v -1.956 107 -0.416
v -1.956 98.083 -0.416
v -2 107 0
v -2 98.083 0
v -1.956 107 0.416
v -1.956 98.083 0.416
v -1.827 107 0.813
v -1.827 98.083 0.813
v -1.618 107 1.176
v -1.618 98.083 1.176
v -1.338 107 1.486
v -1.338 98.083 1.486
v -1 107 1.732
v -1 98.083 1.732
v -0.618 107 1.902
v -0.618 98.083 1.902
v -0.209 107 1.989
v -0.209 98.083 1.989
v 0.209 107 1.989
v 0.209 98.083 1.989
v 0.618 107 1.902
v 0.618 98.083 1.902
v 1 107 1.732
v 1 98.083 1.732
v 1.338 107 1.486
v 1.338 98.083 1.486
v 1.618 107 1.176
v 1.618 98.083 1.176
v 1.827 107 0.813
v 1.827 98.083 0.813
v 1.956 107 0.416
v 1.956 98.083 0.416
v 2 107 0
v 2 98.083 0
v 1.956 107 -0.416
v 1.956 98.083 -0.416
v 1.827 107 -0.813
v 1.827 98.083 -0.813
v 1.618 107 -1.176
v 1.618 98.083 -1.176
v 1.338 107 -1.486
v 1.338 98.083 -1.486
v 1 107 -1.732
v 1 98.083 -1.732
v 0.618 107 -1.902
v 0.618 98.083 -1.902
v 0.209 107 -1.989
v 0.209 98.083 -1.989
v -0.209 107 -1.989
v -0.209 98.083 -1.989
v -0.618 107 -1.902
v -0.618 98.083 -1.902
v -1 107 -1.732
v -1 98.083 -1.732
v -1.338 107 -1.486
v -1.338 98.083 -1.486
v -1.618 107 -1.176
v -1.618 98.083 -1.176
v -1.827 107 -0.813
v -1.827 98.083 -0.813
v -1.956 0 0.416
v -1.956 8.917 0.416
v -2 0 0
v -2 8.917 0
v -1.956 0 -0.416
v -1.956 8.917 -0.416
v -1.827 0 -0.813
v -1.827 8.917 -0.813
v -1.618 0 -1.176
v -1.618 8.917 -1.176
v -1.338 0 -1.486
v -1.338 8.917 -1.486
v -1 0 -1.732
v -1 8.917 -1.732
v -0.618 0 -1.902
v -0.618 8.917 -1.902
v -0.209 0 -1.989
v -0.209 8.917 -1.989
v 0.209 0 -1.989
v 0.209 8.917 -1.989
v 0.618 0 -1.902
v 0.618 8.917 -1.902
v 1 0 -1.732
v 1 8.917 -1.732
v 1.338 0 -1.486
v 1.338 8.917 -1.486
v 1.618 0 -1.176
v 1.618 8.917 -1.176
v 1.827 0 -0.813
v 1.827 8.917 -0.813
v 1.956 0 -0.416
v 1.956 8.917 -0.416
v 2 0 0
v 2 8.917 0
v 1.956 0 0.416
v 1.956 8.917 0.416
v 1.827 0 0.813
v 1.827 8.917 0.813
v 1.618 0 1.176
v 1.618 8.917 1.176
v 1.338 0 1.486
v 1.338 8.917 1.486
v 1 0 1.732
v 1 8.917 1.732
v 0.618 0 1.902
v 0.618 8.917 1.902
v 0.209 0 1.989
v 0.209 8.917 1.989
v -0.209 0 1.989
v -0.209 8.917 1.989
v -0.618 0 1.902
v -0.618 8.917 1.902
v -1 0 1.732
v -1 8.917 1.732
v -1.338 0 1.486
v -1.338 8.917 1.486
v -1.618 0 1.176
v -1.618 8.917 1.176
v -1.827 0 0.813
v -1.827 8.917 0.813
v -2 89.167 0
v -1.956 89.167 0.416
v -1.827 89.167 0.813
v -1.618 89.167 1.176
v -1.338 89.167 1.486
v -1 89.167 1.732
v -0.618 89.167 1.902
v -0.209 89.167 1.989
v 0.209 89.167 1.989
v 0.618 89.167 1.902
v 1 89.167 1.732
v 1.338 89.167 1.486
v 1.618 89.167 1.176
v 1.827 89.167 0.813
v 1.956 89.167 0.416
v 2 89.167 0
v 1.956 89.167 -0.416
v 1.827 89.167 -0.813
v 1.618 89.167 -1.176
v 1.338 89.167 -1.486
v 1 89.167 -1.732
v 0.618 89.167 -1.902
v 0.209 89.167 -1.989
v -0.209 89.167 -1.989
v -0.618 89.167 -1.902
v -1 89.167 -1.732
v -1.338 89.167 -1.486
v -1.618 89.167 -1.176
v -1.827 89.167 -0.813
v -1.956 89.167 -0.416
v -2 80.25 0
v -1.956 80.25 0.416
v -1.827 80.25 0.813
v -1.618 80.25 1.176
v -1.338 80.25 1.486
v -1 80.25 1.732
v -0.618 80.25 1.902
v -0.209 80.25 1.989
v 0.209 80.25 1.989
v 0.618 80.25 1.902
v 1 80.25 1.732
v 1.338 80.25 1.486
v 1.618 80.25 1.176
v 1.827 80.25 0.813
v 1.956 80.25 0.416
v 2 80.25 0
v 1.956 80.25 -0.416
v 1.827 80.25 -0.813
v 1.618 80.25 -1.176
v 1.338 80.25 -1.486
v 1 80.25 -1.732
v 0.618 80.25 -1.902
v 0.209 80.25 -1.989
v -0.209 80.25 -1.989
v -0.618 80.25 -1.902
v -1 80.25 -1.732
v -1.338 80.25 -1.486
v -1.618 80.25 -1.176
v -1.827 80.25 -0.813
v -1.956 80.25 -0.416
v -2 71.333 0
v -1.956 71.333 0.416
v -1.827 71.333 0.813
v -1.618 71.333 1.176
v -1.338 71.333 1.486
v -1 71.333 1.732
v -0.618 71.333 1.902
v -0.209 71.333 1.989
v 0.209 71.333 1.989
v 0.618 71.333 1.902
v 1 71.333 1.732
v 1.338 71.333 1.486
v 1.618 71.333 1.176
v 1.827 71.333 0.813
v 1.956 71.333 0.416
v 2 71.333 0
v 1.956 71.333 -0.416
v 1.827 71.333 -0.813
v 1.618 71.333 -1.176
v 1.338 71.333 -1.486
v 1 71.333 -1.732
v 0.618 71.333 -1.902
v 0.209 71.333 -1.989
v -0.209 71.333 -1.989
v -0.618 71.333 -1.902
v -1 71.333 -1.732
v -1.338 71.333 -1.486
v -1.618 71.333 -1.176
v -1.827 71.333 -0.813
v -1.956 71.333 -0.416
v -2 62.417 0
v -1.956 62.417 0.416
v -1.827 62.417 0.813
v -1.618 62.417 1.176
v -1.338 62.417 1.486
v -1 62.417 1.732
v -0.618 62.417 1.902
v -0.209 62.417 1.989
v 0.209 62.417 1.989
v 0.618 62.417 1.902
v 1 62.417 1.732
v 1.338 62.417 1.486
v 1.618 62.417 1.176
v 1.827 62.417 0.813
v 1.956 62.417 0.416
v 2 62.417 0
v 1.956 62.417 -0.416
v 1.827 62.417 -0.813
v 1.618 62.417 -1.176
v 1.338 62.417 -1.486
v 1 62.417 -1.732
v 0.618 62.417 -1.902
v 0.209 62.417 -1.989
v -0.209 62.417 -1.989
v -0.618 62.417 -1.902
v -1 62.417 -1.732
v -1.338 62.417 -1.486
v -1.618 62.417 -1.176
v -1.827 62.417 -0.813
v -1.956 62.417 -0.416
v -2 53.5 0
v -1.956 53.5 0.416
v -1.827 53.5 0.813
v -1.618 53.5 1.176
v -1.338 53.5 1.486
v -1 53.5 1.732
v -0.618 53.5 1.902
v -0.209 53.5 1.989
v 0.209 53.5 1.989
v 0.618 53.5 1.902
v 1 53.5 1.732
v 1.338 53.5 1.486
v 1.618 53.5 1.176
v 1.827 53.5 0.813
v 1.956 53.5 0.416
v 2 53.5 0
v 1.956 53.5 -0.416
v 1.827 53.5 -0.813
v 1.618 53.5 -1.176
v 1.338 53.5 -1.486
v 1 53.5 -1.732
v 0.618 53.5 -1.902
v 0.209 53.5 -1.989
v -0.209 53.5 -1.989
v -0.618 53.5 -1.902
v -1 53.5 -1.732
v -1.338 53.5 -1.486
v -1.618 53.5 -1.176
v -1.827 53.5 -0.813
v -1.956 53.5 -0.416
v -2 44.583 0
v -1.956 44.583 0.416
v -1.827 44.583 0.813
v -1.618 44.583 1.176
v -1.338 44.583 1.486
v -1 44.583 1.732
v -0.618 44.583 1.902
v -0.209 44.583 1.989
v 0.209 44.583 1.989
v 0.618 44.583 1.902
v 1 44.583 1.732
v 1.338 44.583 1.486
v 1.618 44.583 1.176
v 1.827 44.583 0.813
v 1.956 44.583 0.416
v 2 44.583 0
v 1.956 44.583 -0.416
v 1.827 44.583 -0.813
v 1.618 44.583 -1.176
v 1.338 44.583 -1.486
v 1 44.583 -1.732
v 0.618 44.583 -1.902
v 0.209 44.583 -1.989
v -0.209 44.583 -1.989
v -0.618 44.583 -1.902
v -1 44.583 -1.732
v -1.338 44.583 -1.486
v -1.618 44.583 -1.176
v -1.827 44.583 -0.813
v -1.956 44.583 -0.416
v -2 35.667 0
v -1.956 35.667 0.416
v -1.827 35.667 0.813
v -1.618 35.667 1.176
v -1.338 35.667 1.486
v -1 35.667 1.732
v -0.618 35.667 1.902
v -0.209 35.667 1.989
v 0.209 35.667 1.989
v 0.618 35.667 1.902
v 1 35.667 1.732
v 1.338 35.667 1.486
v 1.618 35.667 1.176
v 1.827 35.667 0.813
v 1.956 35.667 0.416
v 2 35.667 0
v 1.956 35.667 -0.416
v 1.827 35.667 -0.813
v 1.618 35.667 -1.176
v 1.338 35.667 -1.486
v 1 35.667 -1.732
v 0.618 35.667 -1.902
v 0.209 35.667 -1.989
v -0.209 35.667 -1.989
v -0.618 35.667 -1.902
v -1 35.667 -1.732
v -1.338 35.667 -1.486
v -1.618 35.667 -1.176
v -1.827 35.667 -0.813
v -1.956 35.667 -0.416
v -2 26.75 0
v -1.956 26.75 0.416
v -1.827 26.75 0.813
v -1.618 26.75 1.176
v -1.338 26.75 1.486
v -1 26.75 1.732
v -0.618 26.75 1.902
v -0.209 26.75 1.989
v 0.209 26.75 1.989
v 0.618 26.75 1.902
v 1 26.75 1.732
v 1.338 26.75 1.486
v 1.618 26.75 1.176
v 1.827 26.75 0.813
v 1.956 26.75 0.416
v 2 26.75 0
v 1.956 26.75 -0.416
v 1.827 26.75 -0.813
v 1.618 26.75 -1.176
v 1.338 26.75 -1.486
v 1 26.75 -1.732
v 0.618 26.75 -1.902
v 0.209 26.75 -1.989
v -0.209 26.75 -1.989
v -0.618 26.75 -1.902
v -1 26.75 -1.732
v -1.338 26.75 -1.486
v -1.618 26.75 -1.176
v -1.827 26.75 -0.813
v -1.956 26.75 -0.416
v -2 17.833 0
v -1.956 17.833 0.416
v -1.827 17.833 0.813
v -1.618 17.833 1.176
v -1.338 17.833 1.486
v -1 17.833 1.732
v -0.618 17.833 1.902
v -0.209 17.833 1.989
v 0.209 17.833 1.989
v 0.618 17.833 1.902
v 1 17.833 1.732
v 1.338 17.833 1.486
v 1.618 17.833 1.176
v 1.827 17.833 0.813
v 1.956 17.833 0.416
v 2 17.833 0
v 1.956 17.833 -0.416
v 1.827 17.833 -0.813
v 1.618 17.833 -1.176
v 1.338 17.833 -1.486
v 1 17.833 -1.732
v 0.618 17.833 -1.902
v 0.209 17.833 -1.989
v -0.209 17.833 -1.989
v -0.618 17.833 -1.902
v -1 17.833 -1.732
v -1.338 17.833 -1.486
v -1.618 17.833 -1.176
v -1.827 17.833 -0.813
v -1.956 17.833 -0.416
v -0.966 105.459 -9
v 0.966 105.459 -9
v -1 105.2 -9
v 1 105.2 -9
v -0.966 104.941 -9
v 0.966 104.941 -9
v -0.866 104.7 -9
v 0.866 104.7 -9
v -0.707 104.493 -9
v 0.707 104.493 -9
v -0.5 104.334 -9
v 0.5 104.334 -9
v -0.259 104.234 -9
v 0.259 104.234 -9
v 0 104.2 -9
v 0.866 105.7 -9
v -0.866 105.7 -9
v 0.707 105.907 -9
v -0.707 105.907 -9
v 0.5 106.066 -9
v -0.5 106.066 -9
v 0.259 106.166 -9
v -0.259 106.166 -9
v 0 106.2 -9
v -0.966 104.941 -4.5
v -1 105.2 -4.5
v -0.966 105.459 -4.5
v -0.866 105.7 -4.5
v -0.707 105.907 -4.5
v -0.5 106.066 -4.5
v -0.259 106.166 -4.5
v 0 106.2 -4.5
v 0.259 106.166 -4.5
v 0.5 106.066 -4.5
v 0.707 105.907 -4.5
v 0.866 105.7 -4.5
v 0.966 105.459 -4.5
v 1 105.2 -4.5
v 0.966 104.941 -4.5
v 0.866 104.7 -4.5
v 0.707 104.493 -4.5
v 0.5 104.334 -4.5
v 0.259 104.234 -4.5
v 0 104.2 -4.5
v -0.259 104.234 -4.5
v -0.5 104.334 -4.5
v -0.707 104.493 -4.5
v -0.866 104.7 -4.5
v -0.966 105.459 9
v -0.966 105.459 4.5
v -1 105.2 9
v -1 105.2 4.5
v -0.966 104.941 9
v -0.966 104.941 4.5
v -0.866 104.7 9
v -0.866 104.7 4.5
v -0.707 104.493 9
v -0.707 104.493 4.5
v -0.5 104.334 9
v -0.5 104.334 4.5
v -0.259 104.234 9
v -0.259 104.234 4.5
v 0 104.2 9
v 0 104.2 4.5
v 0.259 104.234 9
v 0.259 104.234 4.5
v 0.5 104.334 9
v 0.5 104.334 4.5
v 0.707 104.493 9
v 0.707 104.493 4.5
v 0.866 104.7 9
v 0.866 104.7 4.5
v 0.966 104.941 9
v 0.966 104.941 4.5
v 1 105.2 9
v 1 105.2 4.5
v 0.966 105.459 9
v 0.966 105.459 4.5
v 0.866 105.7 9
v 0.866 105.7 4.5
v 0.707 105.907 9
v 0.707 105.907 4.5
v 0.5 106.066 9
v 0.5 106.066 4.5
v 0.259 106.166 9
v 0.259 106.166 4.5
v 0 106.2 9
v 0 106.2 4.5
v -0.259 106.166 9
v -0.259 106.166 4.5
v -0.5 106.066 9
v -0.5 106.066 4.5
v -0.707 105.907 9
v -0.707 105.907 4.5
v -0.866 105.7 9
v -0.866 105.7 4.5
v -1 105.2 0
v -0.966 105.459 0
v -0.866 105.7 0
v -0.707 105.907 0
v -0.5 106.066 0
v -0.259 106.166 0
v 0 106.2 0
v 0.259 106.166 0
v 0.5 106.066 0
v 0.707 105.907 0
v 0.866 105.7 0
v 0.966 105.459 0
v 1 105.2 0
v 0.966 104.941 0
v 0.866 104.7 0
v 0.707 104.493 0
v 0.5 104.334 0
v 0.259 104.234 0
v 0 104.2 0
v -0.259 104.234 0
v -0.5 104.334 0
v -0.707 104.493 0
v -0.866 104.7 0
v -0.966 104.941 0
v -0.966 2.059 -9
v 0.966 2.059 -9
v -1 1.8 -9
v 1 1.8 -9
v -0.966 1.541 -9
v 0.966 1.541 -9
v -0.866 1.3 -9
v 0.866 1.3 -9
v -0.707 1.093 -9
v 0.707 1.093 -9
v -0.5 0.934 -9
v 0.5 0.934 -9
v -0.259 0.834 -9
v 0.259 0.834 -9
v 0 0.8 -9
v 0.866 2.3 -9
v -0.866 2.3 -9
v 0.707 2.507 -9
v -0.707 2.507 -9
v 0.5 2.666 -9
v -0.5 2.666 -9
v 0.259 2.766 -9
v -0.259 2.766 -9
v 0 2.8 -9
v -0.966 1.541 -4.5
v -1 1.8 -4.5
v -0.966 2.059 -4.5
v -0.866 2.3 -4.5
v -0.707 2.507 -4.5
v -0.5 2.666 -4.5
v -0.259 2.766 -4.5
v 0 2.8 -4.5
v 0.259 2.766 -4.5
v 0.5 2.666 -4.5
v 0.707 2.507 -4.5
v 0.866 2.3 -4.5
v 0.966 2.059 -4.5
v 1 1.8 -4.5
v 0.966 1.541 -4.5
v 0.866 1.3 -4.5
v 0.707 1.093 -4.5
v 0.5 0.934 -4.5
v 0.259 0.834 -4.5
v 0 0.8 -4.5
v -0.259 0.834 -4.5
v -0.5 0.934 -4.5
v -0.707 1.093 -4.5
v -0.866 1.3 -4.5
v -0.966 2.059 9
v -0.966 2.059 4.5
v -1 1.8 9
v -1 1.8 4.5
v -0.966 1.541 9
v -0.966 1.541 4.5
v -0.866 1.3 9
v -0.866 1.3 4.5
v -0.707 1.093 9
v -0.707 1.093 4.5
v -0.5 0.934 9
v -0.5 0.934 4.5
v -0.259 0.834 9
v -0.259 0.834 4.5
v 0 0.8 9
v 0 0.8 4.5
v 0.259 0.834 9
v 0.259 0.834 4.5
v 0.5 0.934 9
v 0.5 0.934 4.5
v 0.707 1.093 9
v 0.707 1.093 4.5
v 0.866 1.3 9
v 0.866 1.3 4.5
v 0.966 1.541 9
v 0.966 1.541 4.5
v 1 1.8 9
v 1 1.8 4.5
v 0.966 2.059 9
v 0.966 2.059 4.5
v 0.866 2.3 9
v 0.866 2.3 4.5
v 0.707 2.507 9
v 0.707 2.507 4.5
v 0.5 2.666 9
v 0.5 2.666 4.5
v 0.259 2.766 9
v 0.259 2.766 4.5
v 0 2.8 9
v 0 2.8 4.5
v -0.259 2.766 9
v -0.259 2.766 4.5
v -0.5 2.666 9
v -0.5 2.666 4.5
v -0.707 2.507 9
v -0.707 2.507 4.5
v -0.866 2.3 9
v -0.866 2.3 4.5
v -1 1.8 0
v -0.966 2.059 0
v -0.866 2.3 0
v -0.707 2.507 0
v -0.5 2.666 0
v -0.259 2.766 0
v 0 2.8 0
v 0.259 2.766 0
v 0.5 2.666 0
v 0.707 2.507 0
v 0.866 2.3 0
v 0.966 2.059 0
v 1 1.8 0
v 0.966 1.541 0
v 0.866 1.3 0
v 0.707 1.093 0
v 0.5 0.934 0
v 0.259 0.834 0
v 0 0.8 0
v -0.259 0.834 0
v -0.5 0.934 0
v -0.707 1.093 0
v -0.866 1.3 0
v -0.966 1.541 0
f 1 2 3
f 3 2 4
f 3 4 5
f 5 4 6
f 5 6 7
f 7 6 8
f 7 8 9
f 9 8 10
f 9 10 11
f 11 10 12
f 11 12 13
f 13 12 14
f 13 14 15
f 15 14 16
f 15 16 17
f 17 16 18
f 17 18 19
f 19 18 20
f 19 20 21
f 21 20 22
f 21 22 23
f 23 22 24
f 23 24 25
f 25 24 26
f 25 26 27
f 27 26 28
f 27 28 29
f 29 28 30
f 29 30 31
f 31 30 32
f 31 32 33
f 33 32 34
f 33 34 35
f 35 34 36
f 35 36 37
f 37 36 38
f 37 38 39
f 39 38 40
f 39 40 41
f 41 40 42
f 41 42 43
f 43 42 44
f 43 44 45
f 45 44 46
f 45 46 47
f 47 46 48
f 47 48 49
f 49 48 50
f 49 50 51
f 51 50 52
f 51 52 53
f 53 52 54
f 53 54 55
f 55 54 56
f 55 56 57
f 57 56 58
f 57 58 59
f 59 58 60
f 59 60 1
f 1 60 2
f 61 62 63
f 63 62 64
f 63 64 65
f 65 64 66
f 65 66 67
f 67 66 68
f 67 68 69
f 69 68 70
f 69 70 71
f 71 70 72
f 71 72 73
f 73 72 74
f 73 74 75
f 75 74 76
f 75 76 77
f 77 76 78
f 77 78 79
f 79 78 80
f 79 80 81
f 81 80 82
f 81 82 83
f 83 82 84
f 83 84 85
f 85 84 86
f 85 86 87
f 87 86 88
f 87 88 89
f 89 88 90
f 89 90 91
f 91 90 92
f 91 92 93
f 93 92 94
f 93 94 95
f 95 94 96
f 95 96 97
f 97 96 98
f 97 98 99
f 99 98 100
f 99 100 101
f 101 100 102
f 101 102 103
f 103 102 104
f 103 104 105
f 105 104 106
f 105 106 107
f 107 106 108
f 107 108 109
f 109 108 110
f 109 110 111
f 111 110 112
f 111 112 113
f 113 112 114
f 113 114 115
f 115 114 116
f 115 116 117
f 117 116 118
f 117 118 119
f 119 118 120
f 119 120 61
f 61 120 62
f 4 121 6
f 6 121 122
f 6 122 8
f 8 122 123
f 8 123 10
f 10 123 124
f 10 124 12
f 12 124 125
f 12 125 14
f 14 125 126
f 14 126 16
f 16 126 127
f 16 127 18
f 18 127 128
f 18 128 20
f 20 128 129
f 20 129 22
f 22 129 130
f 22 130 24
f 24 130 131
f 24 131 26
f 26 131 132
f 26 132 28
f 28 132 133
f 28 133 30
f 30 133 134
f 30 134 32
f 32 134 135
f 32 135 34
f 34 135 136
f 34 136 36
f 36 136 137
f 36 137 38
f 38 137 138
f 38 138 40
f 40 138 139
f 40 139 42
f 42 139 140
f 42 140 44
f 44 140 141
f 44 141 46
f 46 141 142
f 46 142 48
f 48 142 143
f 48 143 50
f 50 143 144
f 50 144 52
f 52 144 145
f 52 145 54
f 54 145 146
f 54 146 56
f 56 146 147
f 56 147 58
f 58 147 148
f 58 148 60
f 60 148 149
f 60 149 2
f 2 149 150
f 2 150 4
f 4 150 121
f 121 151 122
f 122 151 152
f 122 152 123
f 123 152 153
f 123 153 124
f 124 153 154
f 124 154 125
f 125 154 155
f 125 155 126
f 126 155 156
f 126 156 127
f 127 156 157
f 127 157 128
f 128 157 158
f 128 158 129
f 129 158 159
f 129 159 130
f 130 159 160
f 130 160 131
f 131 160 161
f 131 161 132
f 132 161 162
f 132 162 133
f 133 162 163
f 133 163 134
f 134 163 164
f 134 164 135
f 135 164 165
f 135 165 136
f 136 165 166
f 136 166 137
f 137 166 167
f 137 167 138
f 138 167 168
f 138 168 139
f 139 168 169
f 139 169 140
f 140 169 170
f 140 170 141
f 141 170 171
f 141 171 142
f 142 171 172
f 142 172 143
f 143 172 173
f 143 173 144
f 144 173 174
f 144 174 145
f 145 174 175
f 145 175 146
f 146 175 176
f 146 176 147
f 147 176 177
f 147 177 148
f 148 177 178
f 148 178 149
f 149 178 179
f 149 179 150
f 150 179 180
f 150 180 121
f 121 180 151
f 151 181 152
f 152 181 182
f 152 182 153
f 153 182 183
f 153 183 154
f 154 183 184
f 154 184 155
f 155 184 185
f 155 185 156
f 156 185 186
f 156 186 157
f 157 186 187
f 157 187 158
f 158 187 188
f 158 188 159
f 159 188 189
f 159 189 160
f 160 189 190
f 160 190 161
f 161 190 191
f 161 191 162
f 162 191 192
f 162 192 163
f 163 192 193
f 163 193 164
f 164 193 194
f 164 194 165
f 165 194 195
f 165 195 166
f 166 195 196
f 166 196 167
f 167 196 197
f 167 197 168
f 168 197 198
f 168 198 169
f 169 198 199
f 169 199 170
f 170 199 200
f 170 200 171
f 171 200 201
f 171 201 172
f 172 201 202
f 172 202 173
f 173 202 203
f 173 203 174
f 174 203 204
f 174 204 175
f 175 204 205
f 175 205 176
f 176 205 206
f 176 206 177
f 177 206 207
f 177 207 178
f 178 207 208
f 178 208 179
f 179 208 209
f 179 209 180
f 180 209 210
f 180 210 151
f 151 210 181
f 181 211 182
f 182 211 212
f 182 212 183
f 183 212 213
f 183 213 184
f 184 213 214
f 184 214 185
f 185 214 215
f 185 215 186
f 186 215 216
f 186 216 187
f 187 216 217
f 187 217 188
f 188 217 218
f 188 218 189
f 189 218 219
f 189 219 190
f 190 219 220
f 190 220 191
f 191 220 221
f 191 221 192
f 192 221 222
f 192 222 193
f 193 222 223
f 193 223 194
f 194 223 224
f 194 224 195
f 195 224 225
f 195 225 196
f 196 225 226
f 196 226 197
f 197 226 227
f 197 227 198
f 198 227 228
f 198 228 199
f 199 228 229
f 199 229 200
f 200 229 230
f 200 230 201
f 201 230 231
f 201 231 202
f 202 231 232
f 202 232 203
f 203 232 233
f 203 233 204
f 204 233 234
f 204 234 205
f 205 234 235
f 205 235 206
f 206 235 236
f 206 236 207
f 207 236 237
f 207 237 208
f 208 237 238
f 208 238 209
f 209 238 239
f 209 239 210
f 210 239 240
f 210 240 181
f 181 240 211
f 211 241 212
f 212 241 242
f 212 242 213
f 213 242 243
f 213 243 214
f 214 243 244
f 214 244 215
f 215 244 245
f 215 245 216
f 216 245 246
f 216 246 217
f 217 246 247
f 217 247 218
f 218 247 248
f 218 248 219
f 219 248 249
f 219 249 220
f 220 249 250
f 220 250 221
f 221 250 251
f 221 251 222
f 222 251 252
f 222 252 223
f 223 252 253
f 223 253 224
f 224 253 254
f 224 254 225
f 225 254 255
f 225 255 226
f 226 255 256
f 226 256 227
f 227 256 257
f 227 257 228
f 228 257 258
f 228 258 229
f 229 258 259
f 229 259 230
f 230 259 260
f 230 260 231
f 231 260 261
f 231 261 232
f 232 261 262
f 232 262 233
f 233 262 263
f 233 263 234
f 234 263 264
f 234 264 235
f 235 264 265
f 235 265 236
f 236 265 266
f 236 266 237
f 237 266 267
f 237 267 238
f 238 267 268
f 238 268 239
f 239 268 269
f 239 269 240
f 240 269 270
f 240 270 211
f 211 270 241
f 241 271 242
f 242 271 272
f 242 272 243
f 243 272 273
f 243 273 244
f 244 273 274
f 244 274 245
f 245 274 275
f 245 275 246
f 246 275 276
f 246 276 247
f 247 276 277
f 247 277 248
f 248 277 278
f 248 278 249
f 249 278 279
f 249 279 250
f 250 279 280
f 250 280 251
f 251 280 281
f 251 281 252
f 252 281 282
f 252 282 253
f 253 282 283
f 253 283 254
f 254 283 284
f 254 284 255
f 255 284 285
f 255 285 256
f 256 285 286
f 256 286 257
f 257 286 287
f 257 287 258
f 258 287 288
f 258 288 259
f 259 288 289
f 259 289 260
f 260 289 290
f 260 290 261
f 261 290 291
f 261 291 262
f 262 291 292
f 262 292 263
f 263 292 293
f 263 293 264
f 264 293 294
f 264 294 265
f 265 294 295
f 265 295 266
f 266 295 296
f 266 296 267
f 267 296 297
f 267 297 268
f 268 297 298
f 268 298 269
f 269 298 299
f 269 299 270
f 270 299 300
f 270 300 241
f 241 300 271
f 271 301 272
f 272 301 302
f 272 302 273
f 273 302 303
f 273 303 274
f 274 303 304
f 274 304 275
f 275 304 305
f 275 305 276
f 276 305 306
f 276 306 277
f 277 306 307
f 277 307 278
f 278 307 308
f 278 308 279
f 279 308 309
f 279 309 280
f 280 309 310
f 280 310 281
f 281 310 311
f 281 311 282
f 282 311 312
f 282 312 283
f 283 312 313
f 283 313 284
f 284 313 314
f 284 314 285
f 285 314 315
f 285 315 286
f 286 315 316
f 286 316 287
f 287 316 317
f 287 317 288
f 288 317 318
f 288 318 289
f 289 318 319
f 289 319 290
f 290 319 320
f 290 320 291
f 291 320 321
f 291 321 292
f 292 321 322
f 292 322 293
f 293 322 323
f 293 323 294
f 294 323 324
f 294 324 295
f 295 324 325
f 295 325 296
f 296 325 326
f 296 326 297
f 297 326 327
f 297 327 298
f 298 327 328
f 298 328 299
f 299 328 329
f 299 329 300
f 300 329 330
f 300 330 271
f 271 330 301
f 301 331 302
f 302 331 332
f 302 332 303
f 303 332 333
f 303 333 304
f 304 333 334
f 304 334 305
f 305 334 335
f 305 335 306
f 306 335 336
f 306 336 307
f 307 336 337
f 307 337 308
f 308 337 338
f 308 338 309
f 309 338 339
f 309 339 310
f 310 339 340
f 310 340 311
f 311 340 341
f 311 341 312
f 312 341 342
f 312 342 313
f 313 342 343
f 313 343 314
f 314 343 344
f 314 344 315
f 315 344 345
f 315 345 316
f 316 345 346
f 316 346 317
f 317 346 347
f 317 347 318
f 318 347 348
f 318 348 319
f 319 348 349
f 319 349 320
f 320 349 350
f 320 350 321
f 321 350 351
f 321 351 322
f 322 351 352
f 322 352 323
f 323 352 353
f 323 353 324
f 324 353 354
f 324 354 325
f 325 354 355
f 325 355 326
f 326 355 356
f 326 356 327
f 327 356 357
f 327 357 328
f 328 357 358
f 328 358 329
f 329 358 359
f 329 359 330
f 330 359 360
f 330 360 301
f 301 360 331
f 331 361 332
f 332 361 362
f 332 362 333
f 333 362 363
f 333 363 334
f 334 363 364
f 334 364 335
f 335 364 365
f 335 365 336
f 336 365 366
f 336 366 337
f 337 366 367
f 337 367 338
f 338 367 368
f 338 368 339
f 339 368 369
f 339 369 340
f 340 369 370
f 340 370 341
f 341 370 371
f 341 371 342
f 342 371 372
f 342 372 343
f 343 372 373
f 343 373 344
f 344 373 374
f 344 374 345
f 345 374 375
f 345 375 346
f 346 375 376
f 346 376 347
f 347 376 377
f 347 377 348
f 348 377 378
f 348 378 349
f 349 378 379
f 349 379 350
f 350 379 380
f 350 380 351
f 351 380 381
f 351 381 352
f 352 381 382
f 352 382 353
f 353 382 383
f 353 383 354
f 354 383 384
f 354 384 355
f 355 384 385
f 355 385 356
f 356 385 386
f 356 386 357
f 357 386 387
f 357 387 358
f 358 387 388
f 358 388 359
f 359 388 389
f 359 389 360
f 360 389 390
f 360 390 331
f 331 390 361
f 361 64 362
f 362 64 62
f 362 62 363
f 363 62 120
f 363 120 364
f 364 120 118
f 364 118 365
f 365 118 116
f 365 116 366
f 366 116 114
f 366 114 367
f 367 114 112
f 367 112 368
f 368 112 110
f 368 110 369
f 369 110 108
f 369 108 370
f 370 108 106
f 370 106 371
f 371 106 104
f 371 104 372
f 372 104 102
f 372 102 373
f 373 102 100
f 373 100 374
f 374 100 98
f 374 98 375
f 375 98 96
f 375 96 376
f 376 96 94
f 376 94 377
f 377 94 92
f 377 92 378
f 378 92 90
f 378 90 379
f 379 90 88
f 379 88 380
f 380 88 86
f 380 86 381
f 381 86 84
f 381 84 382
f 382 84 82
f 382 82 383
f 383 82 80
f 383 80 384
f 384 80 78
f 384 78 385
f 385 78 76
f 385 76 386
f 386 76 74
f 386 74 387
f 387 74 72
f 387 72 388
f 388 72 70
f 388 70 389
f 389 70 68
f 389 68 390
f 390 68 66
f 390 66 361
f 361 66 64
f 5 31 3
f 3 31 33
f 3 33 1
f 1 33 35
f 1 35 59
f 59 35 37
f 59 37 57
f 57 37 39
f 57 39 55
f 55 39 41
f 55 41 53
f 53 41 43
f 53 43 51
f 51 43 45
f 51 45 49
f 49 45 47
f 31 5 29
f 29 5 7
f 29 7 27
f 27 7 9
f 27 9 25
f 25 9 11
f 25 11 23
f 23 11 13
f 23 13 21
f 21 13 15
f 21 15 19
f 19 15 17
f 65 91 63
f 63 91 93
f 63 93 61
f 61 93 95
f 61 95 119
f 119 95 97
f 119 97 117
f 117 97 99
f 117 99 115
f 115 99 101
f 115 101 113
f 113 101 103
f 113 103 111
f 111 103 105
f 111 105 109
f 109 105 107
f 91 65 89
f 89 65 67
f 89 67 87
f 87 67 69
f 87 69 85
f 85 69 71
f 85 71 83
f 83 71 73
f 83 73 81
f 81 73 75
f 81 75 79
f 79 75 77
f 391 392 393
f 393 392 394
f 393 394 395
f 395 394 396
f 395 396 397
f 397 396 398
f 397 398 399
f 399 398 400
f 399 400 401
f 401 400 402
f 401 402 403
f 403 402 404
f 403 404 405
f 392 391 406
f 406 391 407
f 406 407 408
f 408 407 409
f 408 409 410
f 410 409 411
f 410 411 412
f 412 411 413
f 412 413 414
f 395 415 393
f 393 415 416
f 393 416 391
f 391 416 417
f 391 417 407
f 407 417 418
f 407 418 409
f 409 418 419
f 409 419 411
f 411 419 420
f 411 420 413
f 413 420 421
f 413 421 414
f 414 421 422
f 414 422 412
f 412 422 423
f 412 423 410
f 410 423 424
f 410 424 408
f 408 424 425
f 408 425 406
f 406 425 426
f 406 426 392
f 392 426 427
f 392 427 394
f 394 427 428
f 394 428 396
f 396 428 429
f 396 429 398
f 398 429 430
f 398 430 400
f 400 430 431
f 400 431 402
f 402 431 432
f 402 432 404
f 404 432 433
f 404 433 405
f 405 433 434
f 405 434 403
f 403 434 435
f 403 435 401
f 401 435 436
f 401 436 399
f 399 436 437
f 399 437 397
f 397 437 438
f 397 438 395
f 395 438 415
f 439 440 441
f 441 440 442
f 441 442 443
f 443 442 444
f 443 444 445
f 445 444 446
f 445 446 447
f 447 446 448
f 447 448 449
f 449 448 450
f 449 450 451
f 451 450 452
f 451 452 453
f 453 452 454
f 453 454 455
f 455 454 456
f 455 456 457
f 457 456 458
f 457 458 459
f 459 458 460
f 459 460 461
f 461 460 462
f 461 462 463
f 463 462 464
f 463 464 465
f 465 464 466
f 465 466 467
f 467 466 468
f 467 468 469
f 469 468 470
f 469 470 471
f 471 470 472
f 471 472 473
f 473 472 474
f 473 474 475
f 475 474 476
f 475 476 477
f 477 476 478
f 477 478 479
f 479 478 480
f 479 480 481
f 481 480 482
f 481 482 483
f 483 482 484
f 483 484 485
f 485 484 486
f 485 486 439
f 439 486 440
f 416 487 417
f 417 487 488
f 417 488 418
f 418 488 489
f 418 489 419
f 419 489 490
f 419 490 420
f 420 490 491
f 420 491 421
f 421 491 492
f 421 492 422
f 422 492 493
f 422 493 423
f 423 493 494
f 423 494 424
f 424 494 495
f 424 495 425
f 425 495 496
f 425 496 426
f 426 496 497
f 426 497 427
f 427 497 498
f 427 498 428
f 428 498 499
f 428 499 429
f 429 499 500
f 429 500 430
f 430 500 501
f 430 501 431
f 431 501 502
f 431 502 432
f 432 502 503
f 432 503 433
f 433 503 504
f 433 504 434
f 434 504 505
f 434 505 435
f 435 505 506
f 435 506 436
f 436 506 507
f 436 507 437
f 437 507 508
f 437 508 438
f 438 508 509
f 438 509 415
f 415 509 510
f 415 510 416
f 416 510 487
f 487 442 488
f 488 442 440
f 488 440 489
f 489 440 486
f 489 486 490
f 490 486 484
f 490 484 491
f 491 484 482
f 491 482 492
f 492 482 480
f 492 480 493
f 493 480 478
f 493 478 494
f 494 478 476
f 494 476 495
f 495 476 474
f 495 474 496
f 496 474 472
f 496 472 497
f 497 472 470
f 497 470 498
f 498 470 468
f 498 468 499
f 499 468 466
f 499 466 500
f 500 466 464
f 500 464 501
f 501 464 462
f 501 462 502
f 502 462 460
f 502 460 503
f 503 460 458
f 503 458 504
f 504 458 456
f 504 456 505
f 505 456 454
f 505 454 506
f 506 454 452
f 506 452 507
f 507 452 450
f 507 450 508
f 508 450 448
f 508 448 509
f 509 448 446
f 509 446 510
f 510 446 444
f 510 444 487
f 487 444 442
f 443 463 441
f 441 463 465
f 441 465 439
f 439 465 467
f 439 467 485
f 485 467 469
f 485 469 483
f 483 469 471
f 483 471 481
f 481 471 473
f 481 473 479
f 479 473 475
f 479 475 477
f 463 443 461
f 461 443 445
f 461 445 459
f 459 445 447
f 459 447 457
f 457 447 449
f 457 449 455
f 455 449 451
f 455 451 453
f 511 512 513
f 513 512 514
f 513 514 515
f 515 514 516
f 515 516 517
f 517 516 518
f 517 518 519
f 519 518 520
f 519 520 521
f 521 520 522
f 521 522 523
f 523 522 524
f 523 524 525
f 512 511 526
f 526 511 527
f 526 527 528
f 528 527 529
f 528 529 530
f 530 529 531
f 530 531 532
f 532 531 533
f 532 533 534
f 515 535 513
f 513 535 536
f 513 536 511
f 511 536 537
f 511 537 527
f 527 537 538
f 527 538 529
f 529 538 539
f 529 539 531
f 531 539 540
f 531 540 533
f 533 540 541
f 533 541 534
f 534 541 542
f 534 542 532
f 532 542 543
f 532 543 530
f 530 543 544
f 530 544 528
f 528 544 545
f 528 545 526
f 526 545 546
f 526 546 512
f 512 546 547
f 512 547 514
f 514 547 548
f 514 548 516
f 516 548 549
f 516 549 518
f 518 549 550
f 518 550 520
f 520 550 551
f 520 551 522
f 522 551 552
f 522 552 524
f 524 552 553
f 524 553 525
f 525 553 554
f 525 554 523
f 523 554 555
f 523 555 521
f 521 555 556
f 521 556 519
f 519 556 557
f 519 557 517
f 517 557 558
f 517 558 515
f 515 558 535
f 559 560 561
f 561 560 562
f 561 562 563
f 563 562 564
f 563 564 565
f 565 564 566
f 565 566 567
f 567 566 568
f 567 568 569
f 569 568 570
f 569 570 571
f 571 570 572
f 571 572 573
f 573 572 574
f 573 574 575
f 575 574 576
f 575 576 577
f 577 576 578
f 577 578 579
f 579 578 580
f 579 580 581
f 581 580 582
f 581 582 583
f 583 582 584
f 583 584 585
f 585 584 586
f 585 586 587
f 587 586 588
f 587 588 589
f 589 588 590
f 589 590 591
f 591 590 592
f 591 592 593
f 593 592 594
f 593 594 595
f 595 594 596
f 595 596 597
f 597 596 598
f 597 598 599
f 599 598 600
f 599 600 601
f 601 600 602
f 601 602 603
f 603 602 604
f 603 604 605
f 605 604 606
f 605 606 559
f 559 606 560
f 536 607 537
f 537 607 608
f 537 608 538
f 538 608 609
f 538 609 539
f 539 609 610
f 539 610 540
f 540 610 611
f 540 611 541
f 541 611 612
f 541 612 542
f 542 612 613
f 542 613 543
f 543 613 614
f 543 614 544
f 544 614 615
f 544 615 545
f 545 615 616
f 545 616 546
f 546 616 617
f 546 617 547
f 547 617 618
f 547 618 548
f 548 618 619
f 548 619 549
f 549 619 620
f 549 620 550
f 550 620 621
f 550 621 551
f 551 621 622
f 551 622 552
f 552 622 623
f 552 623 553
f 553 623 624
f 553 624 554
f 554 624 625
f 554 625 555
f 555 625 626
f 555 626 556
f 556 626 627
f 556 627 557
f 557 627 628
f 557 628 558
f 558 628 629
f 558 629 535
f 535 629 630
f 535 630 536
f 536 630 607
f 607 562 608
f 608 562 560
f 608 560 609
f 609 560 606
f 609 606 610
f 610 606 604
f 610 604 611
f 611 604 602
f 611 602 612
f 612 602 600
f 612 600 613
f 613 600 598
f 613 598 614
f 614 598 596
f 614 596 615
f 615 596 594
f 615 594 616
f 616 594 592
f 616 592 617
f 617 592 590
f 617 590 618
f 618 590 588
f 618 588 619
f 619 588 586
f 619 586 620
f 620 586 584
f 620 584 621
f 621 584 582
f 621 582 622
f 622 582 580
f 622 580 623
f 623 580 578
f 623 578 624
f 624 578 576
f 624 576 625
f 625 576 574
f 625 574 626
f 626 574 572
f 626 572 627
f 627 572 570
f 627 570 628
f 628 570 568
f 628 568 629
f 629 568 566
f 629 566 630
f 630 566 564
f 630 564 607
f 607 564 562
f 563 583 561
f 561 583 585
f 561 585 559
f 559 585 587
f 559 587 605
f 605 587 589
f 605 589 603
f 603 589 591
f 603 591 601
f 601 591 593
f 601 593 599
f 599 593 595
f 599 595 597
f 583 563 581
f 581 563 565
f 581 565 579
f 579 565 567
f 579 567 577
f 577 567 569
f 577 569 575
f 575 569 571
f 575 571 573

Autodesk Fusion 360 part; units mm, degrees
sketch "Sketch1" plane through (0, 0, 0) normal (0, 1, 0) x (1, 0, 0)
  circle A0 centre (0, 0) radius 2
  dimension "d5" = 4
extrude "Extrude1" add sketch "Sketch1" along normal blind 107 makes body 1
sketch "Sketch2" plane through (0, 0, 0) normal (0, 0, 1) x (1, 0, 0)
  circle A0 centre (0, 1.8) radius 1
  circle A1 centre (0, 105.2) radius 1
  line L0 (2, 107) -> (-2, 107)
  dimension "d9" = 2
  dimension "d10" = 2
  dimension "d15" = 1.8
  dimension "d16" = 1.8
extrude "Extrude2" add sketch "Sketch2" along normal mid plane 18 separate body contours A1 makes body 2
extrude "Extrude3" add sketch "Sketch2" along normal mid plane 18 separate body contours A0 makes body 3
equation "length = 107 mm"
equation "radius = 2 mm"
equation "cup_little_bone_radius = 1 mm"
equation "cup_little_bone_length = 18 mm"
equation "d5 = radius * 2"
equation "edge_cup_little_bone_distance = 1.8 mm"
equation "d7 = length"
equation "d9 = cup_little_bone_radius * 2"
equation "d10 = cup_little_bone_radius * 2"
equation "d11 = cup_little_bone_length / 2"
equation "d13 = cup_little_bone_length / 2"
equation "d15 = edge_cup_little_bone_distance"
equation "d16 = edge_cup_little_bone_distance"
